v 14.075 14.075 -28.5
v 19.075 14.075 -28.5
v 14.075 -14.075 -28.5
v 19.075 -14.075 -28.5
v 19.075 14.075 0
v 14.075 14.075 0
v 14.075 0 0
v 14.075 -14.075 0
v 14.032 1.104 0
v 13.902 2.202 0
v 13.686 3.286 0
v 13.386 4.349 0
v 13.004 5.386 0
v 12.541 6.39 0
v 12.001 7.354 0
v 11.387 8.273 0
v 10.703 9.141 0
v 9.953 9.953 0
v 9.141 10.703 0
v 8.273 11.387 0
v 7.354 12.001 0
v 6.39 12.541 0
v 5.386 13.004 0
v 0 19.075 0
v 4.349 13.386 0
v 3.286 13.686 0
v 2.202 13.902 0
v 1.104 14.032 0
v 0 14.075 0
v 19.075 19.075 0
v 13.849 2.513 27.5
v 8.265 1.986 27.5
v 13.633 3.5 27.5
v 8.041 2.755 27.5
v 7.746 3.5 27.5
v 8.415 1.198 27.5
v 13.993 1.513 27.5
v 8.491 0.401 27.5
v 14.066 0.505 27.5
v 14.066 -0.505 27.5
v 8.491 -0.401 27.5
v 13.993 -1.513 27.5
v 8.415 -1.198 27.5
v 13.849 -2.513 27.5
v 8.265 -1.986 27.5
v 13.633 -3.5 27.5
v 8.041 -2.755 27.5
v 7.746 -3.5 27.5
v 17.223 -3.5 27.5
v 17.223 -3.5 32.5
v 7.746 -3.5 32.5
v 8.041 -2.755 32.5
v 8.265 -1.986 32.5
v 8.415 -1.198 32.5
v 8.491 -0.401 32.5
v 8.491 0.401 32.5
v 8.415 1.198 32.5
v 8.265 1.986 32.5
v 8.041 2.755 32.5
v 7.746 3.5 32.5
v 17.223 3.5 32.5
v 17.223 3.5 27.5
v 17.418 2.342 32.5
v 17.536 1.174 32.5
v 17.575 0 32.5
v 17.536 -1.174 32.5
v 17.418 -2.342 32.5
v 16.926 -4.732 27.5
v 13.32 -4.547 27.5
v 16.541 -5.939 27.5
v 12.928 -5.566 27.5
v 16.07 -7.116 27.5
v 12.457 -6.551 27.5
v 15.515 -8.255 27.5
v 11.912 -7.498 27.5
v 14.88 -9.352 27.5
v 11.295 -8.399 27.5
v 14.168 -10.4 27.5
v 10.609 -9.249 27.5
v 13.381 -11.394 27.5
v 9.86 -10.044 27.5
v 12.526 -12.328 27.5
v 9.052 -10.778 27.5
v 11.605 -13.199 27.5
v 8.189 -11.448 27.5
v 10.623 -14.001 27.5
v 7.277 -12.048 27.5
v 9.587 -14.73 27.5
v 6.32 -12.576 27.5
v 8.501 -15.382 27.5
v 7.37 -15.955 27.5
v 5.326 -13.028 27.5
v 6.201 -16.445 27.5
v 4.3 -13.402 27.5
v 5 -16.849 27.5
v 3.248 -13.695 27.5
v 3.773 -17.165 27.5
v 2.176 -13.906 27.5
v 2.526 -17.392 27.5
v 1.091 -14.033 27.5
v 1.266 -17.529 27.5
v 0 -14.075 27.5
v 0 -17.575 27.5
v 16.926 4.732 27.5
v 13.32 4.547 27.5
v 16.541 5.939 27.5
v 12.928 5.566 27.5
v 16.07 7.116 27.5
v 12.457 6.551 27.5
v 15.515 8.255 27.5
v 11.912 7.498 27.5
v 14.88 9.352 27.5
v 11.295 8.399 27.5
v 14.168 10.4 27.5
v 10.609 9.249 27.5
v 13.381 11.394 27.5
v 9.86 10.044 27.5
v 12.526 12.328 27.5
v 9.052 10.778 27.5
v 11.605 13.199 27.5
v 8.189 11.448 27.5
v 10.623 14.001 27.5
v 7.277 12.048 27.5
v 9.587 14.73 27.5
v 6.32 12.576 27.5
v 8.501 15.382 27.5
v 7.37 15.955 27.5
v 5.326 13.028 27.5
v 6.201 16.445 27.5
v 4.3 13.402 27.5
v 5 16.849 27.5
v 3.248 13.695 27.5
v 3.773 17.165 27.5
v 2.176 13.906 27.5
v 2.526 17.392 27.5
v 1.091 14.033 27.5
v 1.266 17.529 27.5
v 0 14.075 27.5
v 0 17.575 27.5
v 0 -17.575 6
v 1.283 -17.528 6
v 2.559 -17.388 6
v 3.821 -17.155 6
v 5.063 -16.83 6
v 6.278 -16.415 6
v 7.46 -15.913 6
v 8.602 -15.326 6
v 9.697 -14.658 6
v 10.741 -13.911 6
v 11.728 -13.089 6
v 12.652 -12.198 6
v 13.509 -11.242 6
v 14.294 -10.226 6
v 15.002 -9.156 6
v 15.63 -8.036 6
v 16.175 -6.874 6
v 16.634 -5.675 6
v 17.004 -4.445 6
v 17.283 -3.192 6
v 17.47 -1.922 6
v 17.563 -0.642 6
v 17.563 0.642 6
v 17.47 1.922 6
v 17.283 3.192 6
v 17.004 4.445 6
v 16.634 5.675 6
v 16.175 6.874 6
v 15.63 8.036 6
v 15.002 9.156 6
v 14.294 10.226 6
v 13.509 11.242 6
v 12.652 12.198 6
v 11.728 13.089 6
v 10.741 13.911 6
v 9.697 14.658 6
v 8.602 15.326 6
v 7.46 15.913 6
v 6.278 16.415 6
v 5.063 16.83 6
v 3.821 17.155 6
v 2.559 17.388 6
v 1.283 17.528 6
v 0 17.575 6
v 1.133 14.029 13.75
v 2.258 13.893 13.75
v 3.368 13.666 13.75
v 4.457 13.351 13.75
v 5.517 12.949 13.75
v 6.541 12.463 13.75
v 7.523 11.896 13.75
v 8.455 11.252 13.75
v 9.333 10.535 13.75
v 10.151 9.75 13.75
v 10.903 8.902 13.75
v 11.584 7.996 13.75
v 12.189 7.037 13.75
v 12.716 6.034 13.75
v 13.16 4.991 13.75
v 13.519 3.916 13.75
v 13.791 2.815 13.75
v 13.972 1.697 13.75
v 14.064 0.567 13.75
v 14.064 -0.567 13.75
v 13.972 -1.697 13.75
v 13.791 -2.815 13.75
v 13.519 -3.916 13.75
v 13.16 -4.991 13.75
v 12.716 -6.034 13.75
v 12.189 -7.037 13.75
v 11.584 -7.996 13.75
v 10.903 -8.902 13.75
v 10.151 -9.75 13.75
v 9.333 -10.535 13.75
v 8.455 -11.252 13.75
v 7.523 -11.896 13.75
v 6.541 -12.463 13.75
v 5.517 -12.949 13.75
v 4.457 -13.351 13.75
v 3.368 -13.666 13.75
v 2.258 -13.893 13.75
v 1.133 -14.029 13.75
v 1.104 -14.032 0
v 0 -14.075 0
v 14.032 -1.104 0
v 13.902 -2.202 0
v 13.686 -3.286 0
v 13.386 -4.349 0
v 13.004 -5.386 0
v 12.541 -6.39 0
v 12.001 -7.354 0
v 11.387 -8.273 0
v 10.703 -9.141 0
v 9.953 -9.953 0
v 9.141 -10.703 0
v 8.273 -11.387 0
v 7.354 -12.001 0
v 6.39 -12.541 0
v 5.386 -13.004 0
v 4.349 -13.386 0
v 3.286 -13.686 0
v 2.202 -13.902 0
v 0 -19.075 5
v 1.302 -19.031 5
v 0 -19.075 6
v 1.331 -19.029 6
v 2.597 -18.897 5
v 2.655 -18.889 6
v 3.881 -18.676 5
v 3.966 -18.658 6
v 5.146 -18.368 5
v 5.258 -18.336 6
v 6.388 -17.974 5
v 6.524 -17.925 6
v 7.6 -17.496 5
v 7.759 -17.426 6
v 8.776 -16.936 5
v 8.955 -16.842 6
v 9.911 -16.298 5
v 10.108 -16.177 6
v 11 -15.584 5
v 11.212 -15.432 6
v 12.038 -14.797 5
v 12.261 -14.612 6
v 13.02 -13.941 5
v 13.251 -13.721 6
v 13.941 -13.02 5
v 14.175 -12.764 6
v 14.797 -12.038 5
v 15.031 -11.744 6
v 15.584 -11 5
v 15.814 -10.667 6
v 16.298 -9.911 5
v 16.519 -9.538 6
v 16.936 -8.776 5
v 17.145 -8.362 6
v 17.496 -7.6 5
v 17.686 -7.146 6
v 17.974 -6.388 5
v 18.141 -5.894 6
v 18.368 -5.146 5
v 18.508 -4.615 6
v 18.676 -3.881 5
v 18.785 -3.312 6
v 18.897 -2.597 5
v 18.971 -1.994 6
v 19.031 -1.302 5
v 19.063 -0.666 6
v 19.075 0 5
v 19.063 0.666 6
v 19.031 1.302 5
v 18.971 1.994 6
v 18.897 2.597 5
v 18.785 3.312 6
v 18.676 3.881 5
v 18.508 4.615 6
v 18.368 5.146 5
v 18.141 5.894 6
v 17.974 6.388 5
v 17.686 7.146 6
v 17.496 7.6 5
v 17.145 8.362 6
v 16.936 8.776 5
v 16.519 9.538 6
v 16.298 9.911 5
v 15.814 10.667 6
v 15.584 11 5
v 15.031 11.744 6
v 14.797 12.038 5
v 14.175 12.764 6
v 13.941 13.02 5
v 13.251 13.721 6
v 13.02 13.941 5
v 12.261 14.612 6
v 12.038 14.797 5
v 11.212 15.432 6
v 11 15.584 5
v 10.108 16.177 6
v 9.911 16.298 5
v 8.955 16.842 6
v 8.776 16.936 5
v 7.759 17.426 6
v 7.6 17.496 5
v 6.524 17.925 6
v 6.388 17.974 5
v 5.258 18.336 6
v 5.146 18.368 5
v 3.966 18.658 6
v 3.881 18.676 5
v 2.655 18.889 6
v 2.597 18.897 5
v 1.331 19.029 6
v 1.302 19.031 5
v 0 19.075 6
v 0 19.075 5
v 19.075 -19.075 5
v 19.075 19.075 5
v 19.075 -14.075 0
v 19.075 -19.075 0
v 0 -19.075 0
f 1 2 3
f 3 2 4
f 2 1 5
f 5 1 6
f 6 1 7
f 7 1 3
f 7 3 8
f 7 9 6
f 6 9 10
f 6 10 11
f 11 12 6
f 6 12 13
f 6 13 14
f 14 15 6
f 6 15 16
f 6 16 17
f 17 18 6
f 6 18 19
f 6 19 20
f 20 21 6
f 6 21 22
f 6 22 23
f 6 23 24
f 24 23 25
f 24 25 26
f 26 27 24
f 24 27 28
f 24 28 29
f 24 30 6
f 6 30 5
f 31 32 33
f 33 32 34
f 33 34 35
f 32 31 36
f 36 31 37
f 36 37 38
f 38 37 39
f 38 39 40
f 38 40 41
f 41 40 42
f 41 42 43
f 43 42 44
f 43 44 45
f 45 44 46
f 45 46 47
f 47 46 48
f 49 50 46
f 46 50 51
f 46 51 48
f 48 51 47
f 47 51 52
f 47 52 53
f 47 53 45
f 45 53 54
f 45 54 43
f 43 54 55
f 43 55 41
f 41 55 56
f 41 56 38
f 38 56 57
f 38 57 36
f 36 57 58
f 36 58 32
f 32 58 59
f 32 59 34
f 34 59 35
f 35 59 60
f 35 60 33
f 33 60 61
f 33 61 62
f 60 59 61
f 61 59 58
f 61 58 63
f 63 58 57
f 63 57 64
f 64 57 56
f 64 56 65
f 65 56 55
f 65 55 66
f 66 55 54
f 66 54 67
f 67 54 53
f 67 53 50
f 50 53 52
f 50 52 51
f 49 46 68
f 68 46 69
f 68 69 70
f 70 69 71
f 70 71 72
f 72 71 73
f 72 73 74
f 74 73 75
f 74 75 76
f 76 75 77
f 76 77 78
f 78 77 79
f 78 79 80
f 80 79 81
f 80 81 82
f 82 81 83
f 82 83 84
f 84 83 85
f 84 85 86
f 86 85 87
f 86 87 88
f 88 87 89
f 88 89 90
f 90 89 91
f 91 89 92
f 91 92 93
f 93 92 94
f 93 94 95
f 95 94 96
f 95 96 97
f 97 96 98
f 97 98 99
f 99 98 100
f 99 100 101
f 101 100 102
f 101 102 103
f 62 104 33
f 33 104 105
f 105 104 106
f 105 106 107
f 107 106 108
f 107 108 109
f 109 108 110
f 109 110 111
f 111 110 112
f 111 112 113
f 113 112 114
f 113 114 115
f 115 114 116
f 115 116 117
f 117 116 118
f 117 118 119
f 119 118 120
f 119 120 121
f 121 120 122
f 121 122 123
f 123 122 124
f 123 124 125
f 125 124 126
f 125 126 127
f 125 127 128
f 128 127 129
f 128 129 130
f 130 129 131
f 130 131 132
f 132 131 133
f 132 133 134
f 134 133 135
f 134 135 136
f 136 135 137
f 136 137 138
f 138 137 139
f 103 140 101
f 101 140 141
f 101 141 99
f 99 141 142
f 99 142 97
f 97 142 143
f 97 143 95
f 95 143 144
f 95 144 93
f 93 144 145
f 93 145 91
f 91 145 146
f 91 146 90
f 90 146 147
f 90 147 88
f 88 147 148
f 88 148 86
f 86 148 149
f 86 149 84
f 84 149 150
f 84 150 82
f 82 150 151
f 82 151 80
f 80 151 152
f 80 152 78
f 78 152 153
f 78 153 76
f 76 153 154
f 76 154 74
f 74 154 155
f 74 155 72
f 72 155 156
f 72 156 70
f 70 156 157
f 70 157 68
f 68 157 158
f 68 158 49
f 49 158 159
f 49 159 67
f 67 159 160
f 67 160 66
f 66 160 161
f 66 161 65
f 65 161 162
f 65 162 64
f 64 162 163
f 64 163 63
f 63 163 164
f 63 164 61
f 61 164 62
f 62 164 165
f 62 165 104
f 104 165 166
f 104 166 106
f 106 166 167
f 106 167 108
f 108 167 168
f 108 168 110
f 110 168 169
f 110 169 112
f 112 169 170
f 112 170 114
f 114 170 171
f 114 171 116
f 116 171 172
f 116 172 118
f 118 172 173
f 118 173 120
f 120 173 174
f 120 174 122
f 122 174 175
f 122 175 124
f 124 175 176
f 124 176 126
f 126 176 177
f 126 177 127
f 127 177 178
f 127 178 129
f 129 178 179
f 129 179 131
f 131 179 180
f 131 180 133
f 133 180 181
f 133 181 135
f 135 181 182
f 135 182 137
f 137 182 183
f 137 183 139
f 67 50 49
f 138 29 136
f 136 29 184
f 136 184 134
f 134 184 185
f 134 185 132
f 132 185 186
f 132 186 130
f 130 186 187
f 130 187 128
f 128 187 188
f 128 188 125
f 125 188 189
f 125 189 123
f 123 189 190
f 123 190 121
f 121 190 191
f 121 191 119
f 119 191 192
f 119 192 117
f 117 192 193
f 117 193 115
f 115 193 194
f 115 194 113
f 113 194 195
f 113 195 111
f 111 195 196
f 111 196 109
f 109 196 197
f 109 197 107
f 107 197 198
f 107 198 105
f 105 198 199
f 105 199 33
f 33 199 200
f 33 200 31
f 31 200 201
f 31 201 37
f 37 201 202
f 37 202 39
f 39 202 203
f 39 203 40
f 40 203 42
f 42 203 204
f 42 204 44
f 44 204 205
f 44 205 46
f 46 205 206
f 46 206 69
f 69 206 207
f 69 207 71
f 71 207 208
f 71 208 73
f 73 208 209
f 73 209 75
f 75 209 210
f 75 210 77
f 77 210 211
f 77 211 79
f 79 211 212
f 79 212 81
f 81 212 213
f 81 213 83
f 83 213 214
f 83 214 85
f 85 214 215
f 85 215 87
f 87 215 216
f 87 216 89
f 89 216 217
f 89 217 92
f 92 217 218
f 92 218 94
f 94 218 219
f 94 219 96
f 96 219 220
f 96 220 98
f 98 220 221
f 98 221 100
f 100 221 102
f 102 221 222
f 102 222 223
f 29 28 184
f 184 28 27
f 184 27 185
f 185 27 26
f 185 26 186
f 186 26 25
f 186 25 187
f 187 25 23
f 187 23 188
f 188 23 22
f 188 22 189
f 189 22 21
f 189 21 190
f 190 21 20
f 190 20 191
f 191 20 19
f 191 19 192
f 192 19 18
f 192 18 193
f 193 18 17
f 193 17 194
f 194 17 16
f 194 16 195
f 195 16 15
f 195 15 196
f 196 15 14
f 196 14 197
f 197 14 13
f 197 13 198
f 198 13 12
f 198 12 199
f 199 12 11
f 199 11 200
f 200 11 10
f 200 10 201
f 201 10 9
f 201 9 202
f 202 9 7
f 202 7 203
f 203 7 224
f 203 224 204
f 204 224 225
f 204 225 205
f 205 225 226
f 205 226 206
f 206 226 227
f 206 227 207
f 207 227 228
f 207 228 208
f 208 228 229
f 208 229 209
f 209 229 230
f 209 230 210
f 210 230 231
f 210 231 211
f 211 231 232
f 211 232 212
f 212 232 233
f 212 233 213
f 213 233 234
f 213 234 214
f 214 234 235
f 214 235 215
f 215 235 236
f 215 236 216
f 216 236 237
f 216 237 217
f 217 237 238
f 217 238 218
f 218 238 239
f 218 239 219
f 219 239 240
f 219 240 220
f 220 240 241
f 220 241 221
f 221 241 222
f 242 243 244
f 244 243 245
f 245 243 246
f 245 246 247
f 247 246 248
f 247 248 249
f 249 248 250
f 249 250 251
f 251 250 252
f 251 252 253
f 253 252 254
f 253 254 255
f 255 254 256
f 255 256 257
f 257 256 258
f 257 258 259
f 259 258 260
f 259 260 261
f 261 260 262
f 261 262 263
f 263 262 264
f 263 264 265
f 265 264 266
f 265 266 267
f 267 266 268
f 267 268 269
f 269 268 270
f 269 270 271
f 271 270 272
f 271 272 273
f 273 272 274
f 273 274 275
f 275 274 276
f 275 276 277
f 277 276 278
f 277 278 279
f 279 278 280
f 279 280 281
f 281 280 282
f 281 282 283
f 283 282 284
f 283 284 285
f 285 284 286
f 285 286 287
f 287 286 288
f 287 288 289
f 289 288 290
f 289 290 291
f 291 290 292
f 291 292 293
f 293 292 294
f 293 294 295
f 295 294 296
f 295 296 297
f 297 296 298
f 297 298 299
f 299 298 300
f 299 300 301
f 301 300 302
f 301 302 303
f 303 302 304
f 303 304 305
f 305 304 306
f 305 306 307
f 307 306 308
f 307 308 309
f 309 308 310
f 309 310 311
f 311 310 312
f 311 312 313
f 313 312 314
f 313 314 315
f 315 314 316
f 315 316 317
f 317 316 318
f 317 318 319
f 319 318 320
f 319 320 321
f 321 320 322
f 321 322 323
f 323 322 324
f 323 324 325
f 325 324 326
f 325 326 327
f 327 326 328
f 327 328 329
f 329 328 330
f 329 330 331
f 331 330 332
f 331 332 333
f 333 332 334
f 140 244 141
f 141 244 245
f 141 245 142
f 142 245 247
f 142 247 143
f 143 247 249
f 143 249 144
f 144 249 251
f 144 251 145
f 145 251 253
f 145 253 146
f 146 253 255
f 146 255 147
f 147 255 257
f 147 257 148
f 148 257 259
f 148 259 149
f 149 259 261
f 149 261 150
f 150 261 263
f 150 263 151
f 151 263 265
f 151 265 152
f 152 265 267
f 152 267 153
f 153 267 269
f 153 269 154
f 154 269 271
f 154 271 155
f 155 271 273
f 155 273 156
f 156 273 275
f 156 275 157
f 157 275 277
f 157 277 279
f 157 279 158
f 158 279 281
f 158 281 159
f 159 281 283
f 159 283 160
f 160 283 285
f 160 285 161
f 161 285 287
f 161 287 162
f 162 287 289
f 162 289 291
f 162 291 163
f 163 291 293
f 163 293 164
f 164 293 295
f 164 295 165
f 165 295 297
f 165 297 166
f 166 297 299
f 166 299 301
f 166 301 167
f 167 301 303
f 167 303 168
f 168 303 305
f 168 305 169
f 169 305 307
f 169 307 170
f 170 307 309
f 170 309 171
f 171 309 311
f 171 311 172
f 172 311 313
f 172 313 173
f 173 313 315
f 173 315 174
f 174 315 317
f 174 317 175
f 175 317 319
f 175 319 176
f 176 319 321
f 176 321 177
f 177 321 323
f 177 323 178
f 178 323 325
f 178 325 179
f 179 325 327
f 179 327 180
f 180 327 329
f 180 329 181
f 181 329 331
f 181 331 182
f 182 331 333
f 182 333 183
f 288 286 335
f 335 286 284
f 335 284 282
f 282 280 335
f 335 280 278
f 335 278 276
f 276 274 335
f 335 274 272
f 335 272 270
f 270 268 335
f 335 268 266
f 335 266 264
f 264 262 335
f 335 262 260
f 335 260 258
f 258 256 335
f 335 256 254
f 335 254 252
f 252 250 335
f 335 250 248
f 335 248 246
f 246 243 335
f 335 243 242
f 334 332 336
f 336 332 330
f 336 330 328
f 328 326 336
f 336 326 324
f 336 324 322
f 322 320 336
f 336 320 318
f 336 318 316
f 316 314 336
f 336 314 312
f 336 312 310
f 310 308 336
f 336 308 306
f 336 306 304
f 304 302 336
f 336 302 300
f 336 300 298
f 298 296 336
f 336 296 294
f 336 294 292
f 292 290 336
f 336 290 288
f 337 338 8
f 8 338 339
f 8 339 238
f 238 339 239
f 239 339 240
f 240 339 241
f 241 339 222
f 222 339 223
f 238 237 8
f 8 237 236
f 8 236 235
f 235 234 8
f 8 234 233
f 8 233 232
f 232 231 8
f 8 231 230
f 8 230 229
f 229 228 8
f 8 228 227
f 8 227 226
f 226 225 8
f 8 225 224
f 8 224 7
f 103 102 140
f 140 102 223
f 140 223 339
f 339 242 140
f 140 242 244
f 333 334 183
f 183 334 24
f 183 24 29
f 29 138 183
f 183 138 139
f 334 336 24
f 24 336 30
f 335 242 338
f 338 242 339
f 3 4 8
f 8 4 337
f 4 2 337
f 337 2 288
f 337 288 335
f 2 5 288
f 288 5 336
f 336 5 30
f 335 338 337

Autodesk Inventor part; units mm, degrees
ref_plane "工作平面1" through (0, 0, -40) normal (0, 0, -1) x (-1, 0, 0)
sketch "草圖1" plane through (0, 0, -40) normal (0, 0, -1) x (-1, 0, 0)
  line L0 (-15.075, 14.075) -> (-15.075, 19.075) projected
  line L1 (-19.075, 19.075) -> (-15.075, 19.075) projected
  line L2 (-19.075, 14.075) -> (-19.075, 19.075) projected
  line L3 (-15.075, 14.075) -> (-19.075, 14.075) projected
  line L4 (-15.075, -19.075) -> (-15.075, -14.075) projected
  line L5 (-19.075, -14.075) -> (-15.075, -14.075) projected
  line L6 (-19.075, -19.075) -> (-19.075, -14.075) projected
  line L7 (-15.075, -19.075) -> (-19.075, -19.075) projected
  line L8 (-19.075, 14.075) -> (-19.075, -14.075)
  line L9 (-15.075, -14.075) -> (-15.075, 14.075)
  point P0 (0, 0)
extrude "擠出1" add sketch "草圖1" along normal blind 5
sketch "草圖2" plane through (0, 0, -40) normal (0, 0, 1) x (1, 0, 0)
  line L0 (15.075, -19.075) -> (15.075, 19.075) projected
  line L1 (19.075, -19.075) -> (15.075, -19.075) projected
  line L2 (19.075, 19.075) -> (19.075, -19.075) projected
  line L3 (15.075, 19.075) -> (19.075, 19.075) projected
  line L4 (0, 14.075) -> (19.075, 14.075) projected
  line L5 (19.075, -14.075) -> (0, -14.075) projected
  point P0 (0, 0)
  point P1 (15.075, -14.075)
  point P2 (15.075, 14.075)
ref_plane "工作平面2" through (0, -19.075, 0) normal (0, 0, 1) x (1, 0, 0)
extrude "擠出2" add sketch "草圖2" along normal up to surface (40 mm away) contours L0 L4 L2 L5
sketch "草圖3" plane through (15.075, -14.075, 0) normal (0, 0, 1) x (1, 0, 0)
  line L0 (-15.075, 33.15) -> (-15.075, 28.15) projected
  line L1 (-15.075, 28.15) -> (4, 28.15) projected
  line L2 (4, 28.15) -> (4, 33.15) projected
  line L3 (4, 33.15) -> (-15.075, 33.15) projected
  line L4 (4, 0) -> (0, 0) projected
  line L5 (4, 28.15) -> (4, 0) projected
  line L6 (0, 28.15) -> (4, 28.15) projected
  line L7 (0, 0) -> (0, 28.15) projected
  line L8 (-15.075, 0) -> (-15.075, -5) projected
  line L9 (-15.075, -5) -> (4, -5) projected
  line L10 (4, -5) -> (4, 0) projected
  line L11 (4, 0) -> (-15.075, 0) projected
  point P0 (-15.075, 14.075)
  point P1 (0, 28.15)
  point P2 (4, 28.15)
ref_plane "工作平面3" through (-19.075, 0, 5) normal (0, 0, 1) x (1, 0, 0)
extrude "擠出3" add sketch "草圖3" along normal up to surface (5 mm away)
sketch "草圖4" plane through (0, -19.075, 5) normal (0, 0, 1) x (1, 0, 0)
  arc A0 (0, 38.15) -> (0, 0) centre (0, 19.075) ccw projected
  circle A1 centre (0, 19.075) radius 19.075
  arc A2 (0, 36.65) -> (0, 1.5) centre (0, 19.075) ccw projected
  circle A3 centre (0, 19.075) radius 17.575
  line L0 (0, 38.15) -> (0, 33.15) projected
  line L1 (0, 38.15) -> (0, 0)
  point P0 (0, 1.5)
  point P1 (0, 38.15)
  point P2 (0, 1.5)
  point P3 (0, 38.15)
extrude "擠出4" add sketch "草圖4" along normal blind 1 contours A1 L1 A3 L0
sketch "草圖5" plane through (15.075, -14.075, 0) normal (0, 0, -1) x (-1, 0, 0)
  arc A0 (15.075, 0) -> (15.075, 28.15) centre (15.075, 14.075) ccw projected
  circle A1 centre (15.075, 14.075) radius 14.075
  line L0 (15.075, 28.15) -> (-4, 28.15) projected
  line L1 (0, -5) -> (0, 33.15) projected
  line L2 (-4, 0) -> (15.075, 0) projected
  point P0 (0, 0)
  point P1 (15.075, 28.15)
  point P2 (0, 28.15)
extrude "擠出5" add sketch "草圖5" against normal up to surface (5 mm away) contours L2 L1 L0 A1
sketch "草圖6" plane through (0, 0, 5) normal (0, 0, 1) x (1, 0, 0)
  arc A0 (0, -17.575) -> (0, 17.575) centre (0, 0) ccw projected
  line L0 (0, 14.075) -> (0, 17.575) projected
  arc A1 (0, -14.075) -> (0, 14.075) centre (0, 0) ccw projected
  line L1 (0, -17.575) -> (0, -14.075) projected
ref_plane "工作平面4" through (-14.075, -17.575, 27.5) normal (0, 0, -1) x (0, 1, 0)
extrude "擠出6" add sketch "草圖6" along normal up to surface (22.5 mm away)
sketch "草圖7" plane through (0, 0, 27.5) normal (0, 0, 1) x (1, 0, 0)
  line L0 (17.223, -3.5) -> (7.746, -3.5) projected
  arc A0 (7.746, 3.5) -> (7.746, -3.5) centre (0, 0) ccw projected
  line L1 (7.746, 3.5) -> (17.223, 3.5) projected
  arc A1 (17.223, 3.5) -> (17.223, -3.5) centre (0, 0) ccw projected
  circle A2 centre (7.7782, 7.7782) radius 1.6 projected
  circle A3 centre (-7.7782, 7.7782) radius 1.6 projected
  circle A4 centre (7.7782, -7.7782) radius 1.6 projected
  circle A5 centre (-7.7782, -7.7782) radius 1.6 projected
  arc A6 (0, -17.575) -> (0, 17.575) centre (0, 0) ccw projected
  circle A7 centre (0, 0) radius 8.5
  point P0 (7.746, -3.5)
  point P1 (7.746, 3.5)
ref_plane "工作平面5" through (-17.575, -17.575, 32.5) normal (0, 0, 1) x (1, 0, 0)
extrude "擠出7" add sketch "草圖7" along normal up to surface (5 mm away) contours L0 A7 L1 A6
sketch "草圖8" plane through (15.075, -19.075, -45) normal (-1, 0, 0) x (0, 0, 1)
  line L0 (45, 5) -> (45, 33.15) projected
  line L1 (5, 33.15) -> (45, 33.15) projected
  line L2 (5, 33.15) -> (5, 38.15) projected
  line L3 (5, 38.15) -> (0, 38.15) projected
  line L4 (0, 0) -> (0, 38.15) projected
  line L5 (5, 0) -> (0, 0) projected
  line L6 (5, 0) -> (5, 5) projected
  line L7 (5, 5) -> (45, 5) projected
  point P0 (45, 19.075)
extrude "擠出8" add sketch "草圖8" along normal blind 1
sketch "草圖9" plane through (0, 0, -45) normal (0, 0, -1) x (-1, 0, 0)
  line L0 (-19.075, 19.075) -> (-14.075, 19.075) projected
  line L1 (-19.075, 19.075) -> (-19.075, -19.075) projected
  line L2 (-19.075, -19.075) -> (-14.075, -19.075) projected
  line L3 (-14.075, 19.075) -> (-14.075, -19.075) projected
  point P0 (0, 0)
extrude "擠出9" cut sketch "草圖9" against normal blind 16.5
properties part number "j4 motor mount cover_3D 列印"
